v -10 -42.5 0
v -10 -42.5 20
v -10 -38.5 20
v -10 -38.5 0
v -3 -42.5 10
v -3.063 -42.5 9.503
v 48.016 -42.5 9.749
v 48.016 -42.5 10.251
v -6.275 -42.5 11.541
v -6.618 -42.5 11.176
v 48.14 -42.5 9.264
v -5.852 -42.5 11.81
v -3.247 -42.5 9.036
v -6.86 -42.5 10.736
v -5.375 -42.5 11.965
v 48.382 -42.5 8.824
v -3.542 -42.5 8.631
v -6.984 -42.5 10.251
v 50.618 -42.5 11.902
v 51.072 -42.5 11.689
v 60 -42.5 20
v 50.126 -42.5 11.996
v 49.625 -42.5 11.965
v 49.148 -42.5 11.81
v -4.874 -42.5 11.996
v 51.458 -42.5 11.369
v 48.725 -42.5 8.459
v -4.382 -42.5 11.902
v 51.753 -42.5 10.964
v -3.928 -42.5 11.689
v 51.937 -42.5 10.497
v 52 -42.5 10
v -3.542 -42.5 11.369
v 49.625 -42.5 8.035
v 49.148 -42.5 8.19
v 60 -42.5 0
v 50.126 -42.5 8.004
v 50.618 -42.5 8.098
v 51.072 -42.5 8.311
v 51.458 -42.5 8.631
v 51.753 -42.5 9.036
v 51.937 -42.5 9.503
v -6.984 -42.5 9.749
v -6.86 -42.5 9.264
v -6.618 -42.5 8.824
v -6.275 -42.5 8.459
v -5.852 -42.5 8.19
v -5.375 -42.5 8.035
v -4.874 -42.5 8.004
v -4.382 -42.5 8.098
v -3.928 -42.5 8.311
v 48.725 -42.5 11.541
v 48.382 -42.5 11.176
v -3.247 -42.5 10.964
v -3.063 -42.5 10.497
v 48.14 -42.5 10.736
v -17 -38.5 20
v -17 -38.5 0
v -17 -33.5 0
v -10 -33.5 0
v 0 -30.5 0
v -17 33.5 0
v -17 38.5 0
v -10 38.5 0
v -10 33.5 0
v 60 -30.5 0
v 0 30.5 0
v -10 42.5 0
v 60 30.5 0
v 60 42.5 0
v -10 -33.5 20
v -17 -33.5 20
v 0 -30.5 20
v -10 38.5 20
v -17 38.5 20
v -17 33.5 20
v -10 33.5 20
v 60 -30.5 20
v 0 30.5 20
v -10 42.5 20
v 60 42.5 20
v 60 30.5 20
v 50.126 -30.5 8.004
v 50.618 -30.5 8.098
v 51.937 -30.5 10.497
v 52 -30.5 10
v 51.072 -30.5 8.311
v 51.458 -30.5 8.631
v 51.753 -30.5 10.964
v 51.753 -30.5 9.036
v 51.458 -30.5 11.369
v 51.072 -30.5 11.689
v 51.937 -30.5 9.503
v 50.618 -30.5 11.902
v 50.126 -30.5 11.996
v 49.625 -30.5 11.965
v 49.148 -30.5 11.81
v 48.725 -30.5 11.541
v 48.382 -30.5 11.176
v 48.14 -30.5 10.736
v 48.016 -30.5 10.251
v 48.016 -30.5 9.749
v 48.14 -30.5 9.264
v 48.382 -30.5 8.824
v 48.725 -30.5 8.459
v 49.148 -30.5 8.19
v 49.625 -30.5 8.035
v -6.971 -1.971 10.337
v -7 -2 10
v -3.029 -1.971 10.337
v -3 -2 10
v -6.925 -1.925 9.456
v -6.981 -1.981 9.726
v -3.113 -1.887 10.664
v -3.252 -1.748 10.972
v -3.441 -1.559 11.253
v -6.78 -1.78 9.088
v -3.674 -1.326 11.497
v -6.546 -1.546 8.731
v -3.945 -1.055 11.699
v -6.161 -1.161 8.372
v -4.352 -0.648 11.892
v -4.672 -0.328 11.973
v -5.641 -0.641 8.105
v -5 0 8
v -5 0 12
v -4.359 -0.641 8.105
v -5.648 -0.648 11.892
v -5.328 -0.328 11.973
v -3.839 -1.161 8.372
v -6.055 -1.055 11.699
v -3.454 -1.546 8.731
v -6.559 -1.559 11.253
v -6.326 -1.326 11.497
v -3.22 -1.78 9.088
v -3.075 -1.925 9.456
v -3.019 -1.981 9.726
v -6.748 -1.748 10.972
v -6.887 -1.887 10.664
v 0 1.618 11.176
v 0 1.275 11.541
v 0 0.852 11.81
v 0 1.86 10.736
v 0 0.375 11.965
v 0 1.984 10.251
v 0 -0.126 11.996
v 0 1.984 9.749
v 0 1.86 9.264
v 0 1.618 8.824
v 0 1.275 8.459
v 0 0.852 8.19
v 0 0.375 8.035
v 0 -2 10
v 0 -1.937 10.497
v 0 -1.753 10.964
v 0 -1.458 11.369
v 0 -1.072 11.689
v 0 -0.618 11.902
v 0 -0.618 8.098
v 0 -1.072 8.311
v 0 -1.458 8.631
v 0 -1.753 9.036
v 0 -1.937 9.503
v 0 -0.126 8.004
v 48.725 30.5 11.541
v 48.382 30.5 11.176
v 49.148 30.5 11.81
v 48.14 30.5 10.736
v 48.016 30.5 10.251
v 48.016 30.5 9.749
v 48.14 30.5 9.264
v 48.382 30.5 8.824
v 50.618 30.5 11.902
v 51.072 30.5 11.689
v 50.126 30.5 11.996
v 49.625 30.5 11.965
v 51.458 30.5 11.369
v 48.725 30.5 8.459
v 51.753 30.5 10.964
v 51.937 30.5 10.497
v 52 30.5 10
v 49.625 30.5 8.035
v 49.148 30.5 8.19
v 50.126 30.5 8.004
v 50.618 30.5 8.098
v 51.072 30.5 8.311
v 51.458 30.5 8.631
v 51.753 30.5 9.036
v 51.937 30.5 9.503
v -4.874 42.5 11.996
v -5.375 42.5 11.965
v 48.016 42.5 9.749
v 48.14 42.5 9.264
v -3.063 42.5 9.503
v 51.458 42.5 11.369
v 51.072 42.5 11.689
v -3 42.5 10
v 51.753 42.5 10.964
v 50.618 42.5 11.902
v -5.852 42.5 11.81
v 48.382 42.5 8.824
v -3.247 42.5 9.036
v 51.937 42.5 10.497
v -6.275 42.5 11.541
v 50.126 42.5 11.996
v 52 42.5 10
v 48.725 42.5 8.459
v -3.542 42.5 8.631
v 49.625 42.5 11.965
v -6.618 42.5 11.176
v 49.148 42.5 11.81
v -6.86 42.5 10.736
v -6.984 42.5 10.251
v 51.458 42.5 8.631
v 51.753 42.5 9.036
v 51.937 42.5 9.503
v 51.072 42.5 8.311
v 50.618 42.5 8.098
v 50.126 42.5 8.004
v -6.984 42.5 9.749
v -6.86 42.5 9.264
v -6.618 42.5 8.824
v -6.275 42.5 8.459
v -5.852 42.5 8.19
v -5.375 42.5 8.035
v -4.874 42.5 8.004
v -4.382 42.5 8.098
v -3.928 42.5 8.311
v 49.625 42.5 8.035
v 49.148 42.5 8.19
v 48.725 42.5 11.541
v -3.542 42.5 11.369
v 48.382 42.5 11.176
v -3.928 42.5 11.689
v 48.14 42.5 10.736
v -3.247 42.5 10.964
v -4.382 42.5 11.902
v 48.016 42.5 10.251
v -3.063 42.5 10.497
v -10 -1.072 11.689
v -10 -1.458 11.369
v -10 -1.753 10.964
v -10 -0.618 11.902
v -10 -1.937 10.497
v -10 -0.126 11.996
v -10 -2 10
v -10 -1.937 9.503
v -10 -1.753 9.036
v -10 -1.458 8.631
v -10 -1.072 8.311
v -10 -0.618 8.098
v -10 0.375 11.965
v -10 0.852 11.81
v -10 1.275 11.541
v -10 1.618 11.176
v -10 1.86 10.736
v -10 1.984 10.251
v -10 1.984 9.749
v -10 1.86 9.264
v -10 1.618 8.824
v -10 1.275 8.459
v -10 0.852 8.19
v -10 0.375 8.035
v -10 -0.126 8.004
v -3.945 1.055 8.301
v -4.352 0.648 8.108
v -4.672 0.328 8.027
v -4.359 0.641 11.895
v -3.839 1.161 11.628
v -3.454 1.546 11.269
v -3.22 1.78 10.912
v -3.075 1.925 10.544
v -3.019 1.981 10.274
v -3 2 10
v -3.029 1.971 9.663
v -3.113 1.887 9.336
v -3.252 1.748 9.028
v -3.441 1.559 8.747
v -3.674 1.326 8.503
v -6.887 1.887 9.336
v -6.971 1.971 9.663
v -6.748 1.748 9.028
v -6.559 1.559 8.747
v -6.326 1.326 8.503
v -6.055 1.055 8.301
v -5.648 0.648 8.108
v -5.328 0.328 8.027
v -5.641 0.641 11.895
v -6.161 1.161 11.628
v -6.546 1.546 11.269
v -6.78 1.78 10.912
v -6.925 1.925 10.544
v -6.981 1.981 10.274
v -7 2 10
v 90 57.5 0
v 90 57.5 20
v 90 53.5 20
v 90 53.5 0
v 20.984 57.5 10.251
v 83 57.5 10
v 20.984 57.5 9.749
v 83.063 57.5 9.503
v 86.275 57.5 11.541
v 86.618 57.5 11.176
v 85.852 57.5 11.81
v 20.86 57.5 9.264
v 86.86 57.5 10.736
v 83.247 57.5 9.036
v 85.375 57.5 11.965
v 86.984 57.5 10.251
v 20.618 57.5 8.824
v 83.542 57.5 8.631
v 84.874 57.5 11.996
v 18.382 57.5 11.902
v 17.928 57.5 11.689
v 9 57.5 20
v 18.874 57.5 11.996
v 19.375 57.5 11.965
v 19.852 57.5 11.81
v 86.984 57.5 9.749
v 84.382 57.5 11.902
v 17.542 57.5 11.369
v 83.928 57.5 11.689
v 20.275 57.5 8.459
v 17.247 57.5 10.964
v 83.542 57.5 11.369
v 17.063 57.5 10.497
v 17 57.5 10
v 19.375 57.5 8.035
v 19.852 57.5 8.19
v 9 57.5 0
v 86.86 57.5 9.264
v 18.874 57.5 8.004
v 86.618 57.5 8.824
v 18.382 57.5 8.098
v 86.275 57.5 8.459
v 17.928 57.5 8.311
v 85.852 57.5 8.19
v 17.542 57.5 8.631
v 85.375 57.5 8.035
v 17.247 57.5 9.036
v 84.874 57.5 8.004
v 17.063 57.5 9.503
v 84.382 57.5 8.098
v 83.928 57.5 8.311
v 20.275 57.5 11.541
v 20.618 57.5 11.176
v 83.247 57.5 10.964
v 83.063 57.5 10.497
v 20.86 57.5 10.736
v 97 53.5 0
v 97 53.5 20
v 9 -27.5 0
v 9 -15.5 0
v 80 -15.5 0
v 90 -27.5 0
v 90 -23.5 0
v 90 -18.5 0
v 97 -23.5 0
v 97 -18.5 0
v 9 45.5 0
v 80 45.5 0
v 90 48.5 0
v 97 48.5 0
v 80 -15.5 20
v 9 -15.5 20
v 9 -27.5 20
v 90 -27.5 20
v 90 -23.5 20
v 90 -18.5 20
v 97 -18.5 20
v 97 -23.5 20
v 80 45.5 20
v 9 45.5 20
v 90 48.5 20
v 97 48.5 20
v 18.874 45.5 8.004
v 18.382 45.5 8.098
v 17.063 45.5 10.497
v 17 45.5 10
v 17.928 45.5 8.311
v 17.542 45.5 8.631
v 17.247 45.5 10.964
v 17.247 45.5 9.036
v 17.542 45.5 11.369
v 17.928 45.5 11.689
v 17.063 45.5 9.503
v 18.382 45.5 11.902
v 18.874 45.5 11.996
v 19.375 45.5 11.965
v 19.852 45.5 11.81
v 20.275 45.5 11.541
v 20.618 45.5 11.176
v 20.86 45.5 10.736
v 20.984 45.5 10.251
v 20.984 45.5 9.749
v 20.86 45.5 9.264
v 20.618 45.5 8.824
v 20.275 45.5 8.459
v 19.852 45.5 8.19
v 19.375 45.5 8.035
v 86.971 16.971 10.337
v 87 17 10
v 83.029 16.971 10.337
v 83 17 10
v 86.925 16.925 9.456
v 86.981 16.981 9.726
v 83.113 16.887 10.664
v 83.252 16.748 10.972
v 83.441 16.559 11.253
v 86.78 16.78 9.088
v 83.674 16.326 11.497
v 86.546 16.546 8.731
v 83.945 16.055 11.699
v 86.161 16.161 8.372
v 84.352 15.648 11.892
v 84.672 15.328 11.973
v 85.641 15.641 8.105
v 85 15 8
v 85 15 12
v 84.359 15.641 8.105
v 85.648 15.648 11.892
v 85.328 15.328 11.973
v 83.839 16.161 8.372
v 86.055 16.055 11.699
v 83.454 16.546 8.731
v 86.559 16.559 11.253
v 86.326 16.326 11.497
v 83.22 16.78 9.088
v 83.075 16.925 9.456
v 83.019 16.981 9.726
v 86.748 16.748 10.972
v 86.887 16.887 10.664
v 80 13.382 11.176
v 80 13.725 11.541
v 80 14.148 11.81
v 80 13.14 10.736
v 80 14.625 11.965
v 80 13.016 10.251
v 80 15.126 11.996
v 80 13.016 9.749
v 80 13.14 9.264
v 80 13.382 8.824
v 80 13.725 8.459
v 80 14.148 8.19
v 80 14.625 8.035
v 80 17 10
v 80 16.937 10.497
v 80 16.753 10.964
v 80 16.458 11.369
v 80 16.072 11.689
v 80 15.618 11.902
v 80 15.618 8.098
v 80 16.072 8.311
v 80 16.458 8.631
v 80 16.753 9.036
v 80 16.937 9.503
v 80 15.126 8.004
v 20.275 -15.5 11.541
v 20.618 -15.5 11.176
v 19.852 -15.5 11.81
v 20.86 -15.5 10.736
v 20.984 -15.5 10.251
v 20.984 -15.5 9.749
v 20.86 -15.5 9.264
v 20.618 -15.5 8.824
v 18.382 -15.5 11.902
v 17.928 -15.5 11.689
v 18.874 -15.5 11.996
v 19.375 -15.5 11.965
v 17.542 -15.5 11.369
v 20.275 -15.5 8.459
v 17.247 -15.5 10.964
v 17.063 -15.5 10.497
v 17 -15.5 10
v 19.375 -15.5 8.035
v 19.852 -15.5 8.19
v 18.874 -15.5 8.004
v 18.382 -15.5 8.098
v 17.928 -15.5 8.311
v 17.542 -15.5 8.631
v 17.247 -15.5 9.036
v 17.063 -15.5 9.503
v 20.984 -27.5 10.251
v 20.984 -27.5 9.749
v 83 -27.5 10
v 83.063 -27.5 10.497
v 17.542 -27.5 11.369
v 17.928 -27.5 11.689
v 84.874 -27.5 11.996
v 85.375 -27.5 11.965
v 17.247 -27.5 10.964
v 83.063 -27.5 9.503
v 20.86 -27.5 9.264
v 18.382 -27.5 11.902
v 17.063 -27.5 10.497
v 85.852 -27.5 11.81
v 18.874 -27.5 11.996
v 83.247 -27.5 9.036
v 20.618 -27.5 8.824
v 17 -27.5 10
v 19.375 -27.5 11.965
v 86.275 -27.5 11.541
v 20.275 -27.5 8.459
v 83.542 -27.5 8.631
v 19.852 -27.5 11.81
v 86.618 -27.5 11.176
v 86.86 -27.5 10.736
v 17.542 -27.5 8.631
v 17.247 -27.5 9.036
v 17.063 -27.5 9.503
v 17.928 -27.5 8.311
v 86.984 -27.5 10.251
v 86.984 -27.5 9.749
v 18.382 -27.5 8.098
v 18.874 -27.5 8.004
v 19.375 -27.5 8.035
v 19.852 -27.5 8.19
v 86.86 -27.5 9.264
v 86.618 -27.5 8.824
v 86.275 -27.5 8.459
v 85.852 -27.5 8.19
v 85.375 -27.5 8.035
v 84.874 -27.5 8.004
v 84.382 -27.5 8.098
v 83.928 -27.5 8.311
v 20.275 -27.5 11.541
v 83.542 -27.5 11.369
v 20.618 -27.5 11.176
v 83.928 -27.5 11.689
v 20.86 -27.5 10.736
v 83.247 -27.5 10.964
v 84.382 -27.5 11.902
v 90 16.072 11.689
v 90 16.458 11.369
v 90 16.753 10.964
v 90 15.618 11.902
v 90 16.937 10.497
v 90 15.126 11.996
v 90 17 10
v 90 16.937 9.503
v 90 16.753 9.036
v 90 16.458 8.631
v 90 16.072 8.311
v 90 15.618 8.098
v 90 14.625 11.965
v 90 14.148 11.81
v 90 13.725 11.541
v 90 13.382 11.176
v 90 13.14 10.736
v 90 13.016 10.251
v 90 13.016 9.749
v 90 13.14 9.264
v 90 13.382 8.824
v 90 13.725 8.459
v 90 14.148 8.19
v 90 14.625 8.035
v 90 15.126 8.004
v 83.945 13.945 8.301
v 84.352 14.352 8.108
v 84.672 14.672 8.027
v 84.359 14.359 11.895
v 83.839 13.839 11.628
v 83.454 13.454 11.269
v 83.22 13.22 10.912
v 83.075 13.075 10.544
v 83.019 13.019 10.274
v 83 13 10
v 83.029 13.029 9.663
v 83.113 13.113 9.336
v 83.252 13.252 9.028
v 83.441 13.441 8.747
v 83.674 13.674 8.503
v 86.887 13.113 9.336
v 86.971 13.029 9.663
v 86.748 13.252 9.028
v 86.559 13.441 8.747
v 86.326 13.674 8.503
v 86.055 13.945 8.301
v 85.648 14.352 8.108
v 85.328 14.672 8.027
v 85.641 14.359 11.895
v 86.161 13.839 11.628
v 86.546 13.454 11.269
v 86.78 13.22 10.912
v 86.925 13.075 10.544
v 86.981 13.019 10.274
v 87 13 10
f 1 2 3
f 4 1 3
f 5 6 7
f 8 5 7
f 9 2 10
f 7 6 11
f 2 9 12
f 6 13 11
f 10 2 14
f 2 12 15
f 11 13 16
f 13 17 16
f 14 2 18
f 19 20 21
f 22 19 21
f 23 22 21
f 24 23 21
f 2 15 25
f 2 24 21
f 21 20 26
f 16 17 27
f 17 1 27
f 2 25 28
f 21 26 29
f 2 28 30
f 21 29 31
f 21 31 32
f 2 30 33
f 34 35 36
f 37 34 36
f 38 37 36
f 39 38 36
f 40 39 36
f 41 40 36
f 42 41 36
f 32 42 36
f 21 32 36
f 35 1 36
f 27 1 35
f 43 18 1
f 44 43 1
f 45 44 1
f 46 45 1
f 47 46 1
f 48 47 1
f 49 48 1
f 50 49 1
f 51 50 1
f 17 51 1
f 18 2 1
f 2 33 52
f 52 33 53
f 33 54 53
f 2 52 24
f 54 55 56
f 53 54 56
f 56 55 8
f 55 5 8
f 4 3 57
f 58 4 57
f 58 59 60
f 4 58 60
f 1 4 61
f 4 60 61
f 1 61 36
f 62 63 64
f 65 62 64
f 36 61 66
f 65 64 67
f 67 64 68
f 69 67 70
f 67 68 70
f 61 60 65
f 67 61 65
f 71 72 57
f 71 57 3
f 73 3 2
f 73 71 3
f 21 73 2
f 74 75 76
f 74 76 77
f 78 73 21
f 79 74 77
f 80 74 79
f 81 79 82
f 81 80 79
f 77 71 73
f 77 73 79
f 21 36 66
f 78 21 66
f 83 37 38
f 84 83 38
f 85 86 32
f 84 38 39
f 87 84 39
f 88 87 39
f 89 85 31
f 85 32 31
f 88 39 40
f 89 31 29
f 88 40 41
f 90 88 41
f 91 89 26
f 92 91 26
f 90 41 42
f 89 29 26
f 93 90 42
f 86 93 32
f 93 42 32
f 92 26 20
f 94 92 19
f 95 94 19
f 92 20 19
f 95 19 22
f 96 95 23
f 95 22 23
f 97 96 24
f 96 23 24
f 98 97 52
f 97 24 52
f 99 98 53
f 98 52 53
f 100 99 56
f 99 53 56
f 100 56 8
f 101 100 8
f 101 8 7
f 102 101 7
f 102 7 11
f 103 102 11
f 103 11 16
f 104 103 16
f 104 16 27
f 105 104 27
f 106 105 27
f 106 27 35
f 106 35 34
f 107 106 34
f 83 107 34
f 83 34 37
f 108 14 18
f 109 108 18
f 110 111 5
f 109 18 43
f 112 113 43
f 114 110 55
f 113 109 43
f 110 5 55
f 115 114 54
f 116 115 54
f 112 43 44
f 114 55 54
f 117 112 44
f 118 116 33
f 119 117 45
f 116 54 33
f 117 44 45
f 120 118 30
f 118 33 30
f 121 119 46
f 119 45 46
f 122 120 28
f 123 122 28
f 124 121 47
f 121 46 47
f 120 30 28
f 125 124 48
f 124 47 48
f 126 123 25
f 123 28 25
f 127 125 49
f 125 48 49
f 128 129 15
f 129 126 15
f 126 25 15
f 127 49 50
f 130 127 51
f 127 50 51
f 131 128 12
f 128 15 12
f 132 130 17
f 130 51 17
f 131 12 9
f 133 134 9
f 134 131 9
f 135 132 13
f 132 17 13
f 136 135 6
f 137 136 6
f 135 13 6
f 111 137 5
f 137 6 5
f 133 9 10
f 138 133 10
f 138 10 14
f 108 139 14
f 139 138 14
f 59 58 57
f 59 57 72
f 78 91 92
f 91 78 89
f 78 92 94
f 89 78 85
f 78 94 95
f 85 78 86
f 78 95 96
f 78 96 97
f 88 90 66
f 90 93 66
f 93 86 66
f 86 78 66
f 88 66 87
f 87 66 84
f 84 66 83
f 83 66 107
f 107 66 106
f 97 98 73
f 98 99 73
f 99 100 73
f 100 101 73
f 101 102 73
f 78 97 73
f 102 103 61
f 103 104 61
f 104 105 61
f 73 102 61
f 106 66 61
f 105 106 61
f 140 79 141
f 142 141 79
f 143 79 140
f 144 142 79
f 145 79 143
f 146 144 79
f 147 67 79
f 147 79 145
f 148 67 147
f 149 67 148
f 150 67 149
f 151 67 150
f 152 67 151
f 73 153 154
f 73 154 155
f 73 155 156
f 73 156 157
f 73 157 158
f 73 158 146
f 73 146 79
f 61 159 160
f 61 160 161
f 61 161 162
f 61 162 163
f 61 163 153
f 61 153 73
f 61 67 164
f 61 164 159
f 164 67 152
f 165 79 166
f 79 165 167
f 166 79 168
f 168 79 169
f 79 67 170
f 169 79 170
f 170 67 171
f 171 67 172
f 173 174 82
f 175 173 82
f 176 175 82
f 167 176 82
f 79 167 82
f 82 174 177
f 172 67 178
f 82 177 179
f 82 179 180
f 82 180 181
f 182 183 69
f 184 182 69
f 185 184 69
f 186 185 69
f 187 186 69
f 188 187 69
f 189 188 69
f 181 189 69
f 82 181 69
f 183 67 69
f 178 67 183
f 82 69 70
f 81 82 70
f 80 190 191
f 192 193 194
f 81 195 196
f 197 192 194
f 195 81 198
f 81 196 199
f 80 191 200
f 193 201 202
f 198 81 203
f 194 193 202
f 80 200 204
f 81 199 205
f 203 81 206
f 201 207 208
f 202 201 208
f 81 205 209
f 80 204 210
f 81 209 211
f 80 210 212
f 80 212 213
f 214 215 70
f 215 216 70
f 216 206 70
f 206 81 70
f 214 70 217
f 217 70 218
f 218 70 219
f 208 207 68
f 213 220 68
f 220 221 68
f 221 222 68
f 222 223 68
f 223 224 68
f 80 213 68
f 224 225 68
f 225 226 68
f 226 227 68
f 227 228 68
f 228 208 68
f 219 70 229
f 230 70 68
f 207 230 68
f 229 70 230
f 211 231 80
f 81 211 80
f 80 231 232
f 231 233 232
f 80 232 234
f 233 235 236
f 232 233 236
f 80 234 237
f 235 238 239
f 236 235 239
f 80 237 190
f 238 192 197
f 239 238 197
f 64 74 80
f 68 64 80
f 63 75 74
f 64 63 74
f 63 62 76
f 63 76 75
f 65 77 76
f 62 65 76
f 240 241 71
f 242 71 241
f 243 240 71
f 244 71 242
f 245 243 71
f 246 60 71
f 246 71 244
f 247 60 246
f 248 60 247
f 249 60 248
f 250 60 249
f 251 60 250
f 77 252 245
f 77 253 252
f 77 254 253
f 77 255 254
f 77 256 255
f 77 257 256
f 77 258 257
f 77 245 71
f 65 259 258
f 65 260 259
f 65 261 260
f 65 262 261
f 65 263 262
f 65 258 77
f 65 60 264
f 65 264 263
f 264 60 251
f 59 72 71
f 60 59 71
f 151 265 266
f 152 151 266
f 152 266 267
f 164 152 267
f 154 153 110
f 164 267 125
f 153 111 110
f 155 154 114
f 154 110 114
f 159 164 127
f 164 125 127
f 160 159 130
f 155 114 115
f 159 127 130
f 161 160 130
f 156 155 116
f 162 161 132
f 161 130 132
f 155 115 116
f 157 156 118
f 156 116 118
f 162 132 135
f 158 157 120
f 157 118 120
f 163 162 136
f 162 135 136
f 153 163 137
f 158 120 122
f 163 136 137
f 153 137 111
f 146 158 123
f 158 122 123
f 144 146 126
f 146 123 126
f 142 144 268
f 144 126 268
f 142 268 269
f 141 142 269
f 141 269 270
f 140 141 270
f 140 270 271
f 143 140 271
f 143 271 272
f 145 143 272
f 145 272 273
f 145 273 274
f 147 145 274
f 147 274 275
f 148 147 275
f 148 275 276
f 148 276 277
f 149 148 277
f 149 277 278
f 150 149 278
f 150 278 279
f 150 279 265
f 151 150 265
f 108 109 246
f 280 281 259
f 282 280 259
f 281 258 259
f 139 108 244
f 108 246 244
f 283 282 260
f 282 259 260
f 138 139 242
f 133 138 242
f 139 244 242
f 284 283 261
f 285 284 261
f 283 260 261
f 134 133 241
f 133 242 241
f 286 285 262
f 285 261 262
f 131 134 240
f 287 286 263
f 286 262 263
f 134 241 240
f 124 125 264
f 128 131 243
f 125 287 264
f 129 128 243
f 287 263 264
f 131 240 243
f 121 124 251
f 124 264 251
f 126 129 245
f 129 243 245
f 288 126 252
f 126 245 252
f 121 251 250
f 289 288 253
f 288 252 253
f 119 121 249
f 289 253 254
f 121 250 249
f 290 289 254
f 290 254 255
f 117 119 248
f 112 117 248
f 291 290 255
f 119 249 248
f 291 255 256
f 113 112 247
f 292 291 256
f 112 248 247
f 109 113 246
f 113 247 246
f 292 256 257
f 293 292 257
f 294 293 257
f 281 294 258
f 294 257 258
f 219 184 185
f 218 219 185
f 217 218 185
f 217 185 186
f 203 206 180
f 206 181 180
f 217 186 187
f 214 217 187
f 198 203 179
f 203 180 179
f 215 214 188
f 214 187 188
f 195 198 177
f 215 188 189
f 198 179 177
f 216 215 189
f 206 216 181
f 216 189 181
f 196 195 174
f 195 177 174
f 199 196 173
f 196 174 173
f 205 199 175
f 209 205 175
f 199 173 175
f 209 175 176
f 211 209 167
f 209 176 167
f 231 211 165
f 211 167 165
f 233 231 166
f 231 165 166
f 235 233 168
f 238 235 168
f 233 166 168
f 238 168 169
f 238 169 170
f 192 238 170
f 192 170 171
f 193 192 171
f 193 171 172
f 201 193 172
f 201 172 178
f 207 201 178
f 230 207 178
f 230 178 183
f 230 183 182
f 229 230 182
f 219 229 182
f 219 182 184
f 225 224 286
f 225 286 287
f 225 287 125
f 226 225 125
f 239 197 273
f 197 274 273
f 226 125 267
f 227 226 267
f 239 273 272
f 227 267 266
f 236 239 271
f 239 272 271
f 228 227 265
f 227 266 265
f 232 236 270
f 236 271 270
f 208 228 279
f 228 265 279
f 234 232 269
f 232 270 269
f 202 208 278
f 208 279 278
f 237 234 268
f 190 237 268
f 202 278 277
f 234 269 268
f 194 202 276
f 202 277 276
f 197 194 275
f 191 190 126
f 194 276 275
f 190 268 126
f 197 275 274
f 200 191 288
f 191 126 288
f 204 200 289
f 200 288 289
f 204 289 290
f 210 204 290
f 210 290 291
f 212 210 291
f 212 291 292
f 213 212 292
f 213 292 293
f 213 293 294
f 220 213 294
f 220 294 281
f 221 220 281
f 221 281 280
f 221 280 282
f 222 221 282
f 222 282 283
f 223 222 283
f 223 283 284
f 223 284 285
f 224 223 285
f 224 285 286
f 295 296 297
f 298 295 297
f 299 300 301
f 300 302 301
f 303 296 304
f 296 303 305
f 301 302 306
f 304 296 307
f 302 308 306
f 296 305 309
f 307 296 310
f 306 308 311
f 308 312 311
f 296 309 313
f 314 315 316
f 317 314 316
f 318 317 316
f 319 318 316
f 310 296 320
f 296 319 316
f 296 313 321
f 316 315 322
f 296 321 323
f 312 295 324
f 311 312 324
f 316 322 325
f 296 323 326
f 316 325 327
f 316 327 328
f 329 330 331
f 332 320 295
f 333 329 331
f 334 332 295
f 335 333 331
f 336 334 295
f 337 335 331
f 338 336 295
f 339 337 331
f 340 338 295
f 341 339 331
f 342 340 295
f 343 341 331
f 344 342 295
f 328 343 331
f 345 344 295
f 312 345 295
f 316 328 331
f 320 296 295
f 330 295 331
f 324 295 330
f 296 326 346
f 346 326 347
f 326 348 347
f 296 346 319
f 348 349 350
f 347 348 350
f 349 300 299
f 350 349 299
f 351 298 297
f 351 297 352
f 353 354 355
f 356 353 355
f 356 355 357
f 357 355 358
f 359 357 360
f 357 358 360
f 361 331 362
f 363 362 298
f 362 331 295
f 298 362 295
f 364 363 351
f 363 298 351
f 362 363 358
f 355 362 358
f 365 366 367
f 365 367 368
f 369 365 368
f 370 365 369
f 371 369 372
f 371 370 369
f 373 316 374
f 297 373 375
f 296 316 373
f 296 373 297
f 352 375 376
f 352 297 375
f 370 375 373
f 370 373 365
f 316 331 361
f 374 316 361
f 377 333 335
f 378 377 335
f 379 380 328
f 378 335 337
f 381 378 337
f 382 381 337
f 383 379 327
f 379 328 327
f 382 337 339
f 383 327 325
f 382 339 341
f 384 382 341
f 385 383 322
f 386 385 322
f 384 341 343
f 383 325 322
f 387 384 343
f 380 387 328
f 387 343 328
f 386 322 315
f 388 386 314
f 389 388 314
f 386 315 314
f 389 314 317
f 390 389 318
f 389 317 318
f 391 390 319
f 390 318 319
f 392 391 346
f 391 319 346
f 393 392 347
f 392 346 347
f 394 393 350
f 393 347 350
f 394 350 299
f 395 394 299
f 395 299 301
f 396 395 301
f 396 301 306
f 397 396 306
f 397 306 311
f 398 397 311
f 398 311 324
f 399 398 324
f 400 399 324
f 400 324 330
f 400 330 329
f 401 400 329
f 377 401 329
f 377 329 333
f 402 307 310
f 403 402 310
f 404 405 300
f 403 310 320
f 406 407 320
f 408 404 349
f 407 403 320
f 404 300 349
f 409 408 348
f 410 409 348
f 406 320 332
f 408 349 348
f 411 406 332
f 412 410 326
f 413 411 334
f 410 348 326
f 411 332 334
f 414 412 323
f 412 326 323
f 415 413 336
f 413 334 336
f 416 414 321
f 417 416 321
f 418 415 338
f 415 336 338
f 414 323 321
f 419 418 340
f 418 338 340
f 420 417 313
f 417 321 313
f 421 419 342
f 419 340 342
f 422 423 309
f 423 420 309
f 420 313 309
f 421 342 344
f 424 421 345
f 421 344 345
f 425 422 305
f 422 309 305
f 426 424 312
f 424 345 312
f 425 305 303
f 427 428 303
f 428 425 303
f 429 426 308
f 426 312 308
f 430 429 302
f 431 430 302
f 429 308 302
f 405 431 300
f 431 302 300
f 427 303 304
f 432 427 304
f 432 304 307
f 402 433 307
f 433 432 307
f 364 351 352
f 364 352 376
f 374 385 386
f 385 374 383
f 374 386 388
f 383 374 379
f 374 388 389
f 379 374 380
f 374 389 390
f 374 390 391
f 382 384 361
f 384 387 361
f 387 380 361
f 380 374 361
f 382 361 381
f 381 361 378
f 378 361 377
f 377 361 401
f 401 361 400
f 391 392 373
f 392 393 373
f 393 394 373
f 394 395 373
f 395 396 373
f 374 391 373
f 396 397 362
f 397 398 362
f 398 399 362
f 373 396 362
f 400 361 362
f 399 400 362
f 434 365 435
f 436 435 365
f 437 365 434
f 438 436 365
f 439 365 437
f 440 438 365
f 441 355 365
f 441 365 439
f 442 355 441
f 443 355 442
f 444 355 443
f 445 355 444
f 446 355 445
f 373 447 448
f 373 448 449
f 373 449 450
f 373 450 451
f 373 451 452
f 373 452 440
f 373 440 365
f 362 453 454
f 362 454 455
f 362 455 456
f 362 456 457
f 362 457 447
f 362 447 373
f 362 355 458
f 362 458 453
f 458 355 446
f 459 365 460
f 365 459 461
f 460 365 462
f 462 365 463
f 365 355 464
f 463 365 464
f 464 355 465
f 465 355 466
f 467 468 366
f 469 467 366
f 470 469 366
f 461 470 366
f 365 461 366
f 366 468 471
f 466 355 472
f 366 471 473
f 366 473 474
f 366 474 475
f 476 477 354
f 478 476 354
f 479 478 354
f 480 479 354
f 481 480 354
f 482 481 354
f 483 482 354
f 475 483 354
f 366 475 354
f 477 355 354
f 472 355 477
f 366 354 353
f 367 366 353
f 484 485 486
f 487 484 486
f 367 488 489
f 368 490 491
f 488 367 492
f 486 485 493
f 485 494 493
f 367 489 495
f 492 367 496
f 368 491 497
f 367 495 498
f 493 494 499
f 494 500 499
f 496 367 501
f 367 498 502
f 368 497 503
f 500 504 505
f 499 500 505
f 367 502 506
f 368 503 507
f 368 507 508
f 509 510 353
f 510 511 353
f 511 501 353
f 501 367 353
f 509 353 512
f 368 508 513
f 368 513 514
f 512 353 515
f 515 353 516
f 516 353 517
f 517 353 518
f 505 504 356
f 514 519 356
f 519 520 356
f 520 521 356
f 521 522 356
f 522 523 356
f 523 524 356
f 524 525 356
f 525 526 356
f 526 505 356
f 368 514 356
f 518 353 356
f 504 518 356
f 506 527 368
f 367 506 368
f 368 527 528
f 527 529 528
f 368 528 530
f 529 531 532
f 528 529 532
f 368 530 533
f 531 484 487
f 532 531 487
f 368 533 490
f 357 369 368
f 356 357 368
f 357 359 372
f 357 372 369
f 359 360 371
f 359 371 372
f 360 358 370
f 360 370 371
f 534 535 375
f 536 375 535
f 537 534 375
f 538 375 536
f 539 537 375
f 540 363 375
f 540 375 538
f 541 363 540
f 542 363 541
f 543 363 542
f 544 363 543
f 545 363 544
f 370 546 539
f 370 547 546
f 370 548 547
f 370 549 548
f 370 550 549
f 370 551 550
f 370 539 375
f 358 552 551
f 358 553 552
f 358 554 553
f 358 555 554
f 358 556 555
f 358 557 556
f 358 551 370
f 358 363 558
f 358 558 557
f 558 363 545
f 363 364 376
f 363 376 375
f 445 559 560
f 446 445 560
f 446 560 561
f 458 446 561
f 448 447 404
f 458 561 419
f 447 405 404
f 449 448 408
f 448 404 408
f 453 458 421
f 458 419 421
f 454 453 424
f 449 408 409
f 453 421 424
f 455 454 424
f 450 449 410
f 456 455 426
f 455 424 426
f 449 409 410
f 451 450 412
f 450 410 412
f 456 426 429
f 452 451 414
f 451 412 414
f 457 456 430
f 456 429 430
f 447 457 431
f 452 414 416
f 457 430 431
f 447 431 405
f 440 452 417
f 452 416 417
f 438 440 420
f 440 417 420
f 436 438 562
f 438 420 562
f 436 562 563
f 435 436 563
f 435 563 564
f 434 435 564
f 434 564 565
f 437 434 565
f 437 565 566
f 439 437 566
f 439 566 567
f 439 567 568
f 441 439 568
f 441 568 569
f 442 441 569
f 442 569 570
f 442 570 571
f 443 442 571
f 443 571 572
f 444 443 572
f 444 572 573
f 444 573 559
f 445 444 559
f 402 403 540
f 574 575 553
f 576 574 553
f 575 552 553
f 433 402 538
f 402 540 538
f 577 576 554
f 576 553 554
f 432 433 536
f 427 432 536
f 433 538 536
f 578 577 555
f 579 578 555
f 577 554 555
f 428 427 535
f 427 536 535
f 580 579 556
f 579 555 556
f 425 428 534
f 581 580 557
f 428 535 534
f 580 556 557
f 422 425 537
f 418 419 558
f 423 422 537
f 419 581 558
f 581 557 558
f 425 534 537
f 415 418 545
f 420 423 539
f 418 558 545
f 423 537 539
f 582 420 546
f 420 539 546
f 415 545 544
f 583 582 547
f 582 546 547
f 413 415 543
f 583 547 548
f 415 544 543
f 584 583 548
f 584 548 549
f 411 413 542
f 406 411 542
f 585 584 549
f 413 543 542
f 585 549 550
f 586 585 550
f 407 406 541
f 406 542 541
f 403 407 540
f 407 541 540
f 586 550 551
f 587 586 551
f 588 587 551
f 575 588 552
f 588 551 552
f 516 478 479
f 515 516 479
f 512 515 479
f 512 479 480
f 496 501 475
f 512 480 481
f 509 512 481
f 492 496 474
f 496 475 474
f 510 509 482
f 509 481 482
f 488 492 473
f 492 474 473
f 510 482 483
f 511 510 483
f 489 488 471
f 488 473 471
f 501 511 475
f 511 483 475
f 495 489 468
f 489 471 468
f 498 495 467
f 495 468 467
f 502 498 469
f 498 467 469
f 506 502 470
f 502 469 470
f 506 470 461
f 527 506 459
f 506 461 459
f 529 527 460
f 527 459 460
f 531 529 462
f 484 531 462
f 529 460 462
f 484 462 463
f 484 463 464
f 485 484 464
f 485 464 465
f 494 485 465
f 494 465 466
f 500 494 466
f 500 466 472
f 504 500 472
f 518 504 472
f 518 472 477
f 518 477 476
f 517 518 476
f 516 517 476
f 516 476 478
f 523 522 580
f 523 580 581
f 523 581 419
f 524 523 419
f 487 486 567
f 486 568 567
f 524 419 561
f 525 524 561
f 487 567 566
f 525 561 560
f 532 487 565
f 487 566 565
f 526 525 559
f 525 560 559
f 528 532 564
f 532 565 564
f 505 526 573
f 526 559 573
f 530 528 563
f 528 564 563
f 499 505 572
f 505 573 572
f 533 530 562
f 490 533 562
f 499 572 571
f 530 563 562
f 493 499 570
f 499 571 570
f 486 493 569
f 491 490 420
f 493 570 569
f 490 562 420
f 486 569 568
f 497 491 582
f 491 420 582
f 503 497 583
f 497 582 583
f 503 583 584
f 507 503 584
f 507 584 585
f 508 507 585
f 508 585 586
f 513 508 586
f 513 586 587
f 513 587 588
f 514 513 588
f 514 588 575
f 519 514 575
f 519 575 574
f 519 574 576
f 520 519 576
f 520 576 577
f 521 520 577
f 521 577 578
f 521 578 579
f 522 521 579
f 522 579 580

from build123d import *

# Parameters (mm, degrees)
PAD_DEPTH       = 20
SKETCH004_R     = 2
POCKET002_DEPTH = 70.001
SKETCH005_R     = 2
POCKET003_DEPTH = 85.001
PAD001_DEPTH    = 20
SKETCH007_R     = 2
POCKET004_DEPTH = 81.001
SKETCH008_R     = 2
POCKET005_DEPTH = 85.001


with BuildPart() as soporte_agujero_superior_lateral:
    # Sketch → Pad (new body)
    with BuildSketch(Plane.XY):
        Polygon((-10, -42.5), (60, -42.5), (60, -30.5), (0, -30.5), (0, 30.5), (60, 30.5), (60, 42.5), (-10, 42.5), (-10, 38.5), (-17, 38.5), (-17, 33.5), (-10, 33.5), (-10, -33.5), (-17, -33.5), (-17, -38.5), (-10, -38.5), align=None)
    extrude(amount=PAD_DEPTH)

    # Sketch004 → Pocket002 (cut, through all)
    with BuildSketch(Plane(origin=(-10, 0, 0), x_dir=(0, -1, 0), z_dir=(-1, 0, 0))):
        with Locations((0, 10)):
            Circle(SKETCH004_R)
    extrude(amount=-POCKET002_DEPTH, mode=Mode.SUBTRACT)

    # Sketch005 → Pocket003 (cut, through all)
    with BuildSketch(Plane.XZ.offset(42.5)):
        with Locations((-5, 10)):
            Circle(SKETCH005_R)
        with Locations((50, 10)):
            Circle(SKETCH005_R)
    extrude(amount=-POCKET003_DEPTH, mode=Mode.SUBTRACT)


with BuildPart() as soporte_agujero_superior_lateral001:
    # Sketch006 → Pad001 (new body)
    with BuildSketch(Plane(origin=(80, 15, 0), x_dir=(-1, 0, 0), z_dir=(0, 0, 1))):
        Polygon((-10, -42.5), (71, -42.5), (71, -30.5), (0, -30.5), (0, 30.5), (71, 30.5), (71, 42.5), (-10, 42.5), (-10, 38.5), (-17, 38.5), (-17, 33.5), (-10, 33.5), (-10, -33.5), (-17, -33.5), (-17, -38.5), (-10, -38.5), align=None)
    extrude(amount=PAD001_DEPTH)

    # Sketch007 → Pocket004 (cut, through all)
    with BuildSketch(Plane(origin=(90, 15, 0), x_dir=(0, 1, 0), z_dir=(1, 0, 0))):
        with Locations((0, 10)):
            Circle(SKETCH007_R)
    extrude(amount=-POCKET004_DEPTH, mode=Mode.SUBTRACT)

    # Sketch008 → Pocket005 (cut, through all)
    with BuildSketch(Plane(origin=(80, 57.5, 0), x_dir=(-1, 0, 0), z_dir=(0, 1, 0))):
        with Locations((-5, 10)):
            Circle(SKETCH008_R)
        with Locations((61, 10)):
            Circle(SKETCH008_R)
    extrude(amount=-POCKET005_DEPTH, mode=Mode.SUBTRACT)


solid = Compound([soporte_agujero_superior_lateral.part, soporte_agujero_superior_lateral001.part])
